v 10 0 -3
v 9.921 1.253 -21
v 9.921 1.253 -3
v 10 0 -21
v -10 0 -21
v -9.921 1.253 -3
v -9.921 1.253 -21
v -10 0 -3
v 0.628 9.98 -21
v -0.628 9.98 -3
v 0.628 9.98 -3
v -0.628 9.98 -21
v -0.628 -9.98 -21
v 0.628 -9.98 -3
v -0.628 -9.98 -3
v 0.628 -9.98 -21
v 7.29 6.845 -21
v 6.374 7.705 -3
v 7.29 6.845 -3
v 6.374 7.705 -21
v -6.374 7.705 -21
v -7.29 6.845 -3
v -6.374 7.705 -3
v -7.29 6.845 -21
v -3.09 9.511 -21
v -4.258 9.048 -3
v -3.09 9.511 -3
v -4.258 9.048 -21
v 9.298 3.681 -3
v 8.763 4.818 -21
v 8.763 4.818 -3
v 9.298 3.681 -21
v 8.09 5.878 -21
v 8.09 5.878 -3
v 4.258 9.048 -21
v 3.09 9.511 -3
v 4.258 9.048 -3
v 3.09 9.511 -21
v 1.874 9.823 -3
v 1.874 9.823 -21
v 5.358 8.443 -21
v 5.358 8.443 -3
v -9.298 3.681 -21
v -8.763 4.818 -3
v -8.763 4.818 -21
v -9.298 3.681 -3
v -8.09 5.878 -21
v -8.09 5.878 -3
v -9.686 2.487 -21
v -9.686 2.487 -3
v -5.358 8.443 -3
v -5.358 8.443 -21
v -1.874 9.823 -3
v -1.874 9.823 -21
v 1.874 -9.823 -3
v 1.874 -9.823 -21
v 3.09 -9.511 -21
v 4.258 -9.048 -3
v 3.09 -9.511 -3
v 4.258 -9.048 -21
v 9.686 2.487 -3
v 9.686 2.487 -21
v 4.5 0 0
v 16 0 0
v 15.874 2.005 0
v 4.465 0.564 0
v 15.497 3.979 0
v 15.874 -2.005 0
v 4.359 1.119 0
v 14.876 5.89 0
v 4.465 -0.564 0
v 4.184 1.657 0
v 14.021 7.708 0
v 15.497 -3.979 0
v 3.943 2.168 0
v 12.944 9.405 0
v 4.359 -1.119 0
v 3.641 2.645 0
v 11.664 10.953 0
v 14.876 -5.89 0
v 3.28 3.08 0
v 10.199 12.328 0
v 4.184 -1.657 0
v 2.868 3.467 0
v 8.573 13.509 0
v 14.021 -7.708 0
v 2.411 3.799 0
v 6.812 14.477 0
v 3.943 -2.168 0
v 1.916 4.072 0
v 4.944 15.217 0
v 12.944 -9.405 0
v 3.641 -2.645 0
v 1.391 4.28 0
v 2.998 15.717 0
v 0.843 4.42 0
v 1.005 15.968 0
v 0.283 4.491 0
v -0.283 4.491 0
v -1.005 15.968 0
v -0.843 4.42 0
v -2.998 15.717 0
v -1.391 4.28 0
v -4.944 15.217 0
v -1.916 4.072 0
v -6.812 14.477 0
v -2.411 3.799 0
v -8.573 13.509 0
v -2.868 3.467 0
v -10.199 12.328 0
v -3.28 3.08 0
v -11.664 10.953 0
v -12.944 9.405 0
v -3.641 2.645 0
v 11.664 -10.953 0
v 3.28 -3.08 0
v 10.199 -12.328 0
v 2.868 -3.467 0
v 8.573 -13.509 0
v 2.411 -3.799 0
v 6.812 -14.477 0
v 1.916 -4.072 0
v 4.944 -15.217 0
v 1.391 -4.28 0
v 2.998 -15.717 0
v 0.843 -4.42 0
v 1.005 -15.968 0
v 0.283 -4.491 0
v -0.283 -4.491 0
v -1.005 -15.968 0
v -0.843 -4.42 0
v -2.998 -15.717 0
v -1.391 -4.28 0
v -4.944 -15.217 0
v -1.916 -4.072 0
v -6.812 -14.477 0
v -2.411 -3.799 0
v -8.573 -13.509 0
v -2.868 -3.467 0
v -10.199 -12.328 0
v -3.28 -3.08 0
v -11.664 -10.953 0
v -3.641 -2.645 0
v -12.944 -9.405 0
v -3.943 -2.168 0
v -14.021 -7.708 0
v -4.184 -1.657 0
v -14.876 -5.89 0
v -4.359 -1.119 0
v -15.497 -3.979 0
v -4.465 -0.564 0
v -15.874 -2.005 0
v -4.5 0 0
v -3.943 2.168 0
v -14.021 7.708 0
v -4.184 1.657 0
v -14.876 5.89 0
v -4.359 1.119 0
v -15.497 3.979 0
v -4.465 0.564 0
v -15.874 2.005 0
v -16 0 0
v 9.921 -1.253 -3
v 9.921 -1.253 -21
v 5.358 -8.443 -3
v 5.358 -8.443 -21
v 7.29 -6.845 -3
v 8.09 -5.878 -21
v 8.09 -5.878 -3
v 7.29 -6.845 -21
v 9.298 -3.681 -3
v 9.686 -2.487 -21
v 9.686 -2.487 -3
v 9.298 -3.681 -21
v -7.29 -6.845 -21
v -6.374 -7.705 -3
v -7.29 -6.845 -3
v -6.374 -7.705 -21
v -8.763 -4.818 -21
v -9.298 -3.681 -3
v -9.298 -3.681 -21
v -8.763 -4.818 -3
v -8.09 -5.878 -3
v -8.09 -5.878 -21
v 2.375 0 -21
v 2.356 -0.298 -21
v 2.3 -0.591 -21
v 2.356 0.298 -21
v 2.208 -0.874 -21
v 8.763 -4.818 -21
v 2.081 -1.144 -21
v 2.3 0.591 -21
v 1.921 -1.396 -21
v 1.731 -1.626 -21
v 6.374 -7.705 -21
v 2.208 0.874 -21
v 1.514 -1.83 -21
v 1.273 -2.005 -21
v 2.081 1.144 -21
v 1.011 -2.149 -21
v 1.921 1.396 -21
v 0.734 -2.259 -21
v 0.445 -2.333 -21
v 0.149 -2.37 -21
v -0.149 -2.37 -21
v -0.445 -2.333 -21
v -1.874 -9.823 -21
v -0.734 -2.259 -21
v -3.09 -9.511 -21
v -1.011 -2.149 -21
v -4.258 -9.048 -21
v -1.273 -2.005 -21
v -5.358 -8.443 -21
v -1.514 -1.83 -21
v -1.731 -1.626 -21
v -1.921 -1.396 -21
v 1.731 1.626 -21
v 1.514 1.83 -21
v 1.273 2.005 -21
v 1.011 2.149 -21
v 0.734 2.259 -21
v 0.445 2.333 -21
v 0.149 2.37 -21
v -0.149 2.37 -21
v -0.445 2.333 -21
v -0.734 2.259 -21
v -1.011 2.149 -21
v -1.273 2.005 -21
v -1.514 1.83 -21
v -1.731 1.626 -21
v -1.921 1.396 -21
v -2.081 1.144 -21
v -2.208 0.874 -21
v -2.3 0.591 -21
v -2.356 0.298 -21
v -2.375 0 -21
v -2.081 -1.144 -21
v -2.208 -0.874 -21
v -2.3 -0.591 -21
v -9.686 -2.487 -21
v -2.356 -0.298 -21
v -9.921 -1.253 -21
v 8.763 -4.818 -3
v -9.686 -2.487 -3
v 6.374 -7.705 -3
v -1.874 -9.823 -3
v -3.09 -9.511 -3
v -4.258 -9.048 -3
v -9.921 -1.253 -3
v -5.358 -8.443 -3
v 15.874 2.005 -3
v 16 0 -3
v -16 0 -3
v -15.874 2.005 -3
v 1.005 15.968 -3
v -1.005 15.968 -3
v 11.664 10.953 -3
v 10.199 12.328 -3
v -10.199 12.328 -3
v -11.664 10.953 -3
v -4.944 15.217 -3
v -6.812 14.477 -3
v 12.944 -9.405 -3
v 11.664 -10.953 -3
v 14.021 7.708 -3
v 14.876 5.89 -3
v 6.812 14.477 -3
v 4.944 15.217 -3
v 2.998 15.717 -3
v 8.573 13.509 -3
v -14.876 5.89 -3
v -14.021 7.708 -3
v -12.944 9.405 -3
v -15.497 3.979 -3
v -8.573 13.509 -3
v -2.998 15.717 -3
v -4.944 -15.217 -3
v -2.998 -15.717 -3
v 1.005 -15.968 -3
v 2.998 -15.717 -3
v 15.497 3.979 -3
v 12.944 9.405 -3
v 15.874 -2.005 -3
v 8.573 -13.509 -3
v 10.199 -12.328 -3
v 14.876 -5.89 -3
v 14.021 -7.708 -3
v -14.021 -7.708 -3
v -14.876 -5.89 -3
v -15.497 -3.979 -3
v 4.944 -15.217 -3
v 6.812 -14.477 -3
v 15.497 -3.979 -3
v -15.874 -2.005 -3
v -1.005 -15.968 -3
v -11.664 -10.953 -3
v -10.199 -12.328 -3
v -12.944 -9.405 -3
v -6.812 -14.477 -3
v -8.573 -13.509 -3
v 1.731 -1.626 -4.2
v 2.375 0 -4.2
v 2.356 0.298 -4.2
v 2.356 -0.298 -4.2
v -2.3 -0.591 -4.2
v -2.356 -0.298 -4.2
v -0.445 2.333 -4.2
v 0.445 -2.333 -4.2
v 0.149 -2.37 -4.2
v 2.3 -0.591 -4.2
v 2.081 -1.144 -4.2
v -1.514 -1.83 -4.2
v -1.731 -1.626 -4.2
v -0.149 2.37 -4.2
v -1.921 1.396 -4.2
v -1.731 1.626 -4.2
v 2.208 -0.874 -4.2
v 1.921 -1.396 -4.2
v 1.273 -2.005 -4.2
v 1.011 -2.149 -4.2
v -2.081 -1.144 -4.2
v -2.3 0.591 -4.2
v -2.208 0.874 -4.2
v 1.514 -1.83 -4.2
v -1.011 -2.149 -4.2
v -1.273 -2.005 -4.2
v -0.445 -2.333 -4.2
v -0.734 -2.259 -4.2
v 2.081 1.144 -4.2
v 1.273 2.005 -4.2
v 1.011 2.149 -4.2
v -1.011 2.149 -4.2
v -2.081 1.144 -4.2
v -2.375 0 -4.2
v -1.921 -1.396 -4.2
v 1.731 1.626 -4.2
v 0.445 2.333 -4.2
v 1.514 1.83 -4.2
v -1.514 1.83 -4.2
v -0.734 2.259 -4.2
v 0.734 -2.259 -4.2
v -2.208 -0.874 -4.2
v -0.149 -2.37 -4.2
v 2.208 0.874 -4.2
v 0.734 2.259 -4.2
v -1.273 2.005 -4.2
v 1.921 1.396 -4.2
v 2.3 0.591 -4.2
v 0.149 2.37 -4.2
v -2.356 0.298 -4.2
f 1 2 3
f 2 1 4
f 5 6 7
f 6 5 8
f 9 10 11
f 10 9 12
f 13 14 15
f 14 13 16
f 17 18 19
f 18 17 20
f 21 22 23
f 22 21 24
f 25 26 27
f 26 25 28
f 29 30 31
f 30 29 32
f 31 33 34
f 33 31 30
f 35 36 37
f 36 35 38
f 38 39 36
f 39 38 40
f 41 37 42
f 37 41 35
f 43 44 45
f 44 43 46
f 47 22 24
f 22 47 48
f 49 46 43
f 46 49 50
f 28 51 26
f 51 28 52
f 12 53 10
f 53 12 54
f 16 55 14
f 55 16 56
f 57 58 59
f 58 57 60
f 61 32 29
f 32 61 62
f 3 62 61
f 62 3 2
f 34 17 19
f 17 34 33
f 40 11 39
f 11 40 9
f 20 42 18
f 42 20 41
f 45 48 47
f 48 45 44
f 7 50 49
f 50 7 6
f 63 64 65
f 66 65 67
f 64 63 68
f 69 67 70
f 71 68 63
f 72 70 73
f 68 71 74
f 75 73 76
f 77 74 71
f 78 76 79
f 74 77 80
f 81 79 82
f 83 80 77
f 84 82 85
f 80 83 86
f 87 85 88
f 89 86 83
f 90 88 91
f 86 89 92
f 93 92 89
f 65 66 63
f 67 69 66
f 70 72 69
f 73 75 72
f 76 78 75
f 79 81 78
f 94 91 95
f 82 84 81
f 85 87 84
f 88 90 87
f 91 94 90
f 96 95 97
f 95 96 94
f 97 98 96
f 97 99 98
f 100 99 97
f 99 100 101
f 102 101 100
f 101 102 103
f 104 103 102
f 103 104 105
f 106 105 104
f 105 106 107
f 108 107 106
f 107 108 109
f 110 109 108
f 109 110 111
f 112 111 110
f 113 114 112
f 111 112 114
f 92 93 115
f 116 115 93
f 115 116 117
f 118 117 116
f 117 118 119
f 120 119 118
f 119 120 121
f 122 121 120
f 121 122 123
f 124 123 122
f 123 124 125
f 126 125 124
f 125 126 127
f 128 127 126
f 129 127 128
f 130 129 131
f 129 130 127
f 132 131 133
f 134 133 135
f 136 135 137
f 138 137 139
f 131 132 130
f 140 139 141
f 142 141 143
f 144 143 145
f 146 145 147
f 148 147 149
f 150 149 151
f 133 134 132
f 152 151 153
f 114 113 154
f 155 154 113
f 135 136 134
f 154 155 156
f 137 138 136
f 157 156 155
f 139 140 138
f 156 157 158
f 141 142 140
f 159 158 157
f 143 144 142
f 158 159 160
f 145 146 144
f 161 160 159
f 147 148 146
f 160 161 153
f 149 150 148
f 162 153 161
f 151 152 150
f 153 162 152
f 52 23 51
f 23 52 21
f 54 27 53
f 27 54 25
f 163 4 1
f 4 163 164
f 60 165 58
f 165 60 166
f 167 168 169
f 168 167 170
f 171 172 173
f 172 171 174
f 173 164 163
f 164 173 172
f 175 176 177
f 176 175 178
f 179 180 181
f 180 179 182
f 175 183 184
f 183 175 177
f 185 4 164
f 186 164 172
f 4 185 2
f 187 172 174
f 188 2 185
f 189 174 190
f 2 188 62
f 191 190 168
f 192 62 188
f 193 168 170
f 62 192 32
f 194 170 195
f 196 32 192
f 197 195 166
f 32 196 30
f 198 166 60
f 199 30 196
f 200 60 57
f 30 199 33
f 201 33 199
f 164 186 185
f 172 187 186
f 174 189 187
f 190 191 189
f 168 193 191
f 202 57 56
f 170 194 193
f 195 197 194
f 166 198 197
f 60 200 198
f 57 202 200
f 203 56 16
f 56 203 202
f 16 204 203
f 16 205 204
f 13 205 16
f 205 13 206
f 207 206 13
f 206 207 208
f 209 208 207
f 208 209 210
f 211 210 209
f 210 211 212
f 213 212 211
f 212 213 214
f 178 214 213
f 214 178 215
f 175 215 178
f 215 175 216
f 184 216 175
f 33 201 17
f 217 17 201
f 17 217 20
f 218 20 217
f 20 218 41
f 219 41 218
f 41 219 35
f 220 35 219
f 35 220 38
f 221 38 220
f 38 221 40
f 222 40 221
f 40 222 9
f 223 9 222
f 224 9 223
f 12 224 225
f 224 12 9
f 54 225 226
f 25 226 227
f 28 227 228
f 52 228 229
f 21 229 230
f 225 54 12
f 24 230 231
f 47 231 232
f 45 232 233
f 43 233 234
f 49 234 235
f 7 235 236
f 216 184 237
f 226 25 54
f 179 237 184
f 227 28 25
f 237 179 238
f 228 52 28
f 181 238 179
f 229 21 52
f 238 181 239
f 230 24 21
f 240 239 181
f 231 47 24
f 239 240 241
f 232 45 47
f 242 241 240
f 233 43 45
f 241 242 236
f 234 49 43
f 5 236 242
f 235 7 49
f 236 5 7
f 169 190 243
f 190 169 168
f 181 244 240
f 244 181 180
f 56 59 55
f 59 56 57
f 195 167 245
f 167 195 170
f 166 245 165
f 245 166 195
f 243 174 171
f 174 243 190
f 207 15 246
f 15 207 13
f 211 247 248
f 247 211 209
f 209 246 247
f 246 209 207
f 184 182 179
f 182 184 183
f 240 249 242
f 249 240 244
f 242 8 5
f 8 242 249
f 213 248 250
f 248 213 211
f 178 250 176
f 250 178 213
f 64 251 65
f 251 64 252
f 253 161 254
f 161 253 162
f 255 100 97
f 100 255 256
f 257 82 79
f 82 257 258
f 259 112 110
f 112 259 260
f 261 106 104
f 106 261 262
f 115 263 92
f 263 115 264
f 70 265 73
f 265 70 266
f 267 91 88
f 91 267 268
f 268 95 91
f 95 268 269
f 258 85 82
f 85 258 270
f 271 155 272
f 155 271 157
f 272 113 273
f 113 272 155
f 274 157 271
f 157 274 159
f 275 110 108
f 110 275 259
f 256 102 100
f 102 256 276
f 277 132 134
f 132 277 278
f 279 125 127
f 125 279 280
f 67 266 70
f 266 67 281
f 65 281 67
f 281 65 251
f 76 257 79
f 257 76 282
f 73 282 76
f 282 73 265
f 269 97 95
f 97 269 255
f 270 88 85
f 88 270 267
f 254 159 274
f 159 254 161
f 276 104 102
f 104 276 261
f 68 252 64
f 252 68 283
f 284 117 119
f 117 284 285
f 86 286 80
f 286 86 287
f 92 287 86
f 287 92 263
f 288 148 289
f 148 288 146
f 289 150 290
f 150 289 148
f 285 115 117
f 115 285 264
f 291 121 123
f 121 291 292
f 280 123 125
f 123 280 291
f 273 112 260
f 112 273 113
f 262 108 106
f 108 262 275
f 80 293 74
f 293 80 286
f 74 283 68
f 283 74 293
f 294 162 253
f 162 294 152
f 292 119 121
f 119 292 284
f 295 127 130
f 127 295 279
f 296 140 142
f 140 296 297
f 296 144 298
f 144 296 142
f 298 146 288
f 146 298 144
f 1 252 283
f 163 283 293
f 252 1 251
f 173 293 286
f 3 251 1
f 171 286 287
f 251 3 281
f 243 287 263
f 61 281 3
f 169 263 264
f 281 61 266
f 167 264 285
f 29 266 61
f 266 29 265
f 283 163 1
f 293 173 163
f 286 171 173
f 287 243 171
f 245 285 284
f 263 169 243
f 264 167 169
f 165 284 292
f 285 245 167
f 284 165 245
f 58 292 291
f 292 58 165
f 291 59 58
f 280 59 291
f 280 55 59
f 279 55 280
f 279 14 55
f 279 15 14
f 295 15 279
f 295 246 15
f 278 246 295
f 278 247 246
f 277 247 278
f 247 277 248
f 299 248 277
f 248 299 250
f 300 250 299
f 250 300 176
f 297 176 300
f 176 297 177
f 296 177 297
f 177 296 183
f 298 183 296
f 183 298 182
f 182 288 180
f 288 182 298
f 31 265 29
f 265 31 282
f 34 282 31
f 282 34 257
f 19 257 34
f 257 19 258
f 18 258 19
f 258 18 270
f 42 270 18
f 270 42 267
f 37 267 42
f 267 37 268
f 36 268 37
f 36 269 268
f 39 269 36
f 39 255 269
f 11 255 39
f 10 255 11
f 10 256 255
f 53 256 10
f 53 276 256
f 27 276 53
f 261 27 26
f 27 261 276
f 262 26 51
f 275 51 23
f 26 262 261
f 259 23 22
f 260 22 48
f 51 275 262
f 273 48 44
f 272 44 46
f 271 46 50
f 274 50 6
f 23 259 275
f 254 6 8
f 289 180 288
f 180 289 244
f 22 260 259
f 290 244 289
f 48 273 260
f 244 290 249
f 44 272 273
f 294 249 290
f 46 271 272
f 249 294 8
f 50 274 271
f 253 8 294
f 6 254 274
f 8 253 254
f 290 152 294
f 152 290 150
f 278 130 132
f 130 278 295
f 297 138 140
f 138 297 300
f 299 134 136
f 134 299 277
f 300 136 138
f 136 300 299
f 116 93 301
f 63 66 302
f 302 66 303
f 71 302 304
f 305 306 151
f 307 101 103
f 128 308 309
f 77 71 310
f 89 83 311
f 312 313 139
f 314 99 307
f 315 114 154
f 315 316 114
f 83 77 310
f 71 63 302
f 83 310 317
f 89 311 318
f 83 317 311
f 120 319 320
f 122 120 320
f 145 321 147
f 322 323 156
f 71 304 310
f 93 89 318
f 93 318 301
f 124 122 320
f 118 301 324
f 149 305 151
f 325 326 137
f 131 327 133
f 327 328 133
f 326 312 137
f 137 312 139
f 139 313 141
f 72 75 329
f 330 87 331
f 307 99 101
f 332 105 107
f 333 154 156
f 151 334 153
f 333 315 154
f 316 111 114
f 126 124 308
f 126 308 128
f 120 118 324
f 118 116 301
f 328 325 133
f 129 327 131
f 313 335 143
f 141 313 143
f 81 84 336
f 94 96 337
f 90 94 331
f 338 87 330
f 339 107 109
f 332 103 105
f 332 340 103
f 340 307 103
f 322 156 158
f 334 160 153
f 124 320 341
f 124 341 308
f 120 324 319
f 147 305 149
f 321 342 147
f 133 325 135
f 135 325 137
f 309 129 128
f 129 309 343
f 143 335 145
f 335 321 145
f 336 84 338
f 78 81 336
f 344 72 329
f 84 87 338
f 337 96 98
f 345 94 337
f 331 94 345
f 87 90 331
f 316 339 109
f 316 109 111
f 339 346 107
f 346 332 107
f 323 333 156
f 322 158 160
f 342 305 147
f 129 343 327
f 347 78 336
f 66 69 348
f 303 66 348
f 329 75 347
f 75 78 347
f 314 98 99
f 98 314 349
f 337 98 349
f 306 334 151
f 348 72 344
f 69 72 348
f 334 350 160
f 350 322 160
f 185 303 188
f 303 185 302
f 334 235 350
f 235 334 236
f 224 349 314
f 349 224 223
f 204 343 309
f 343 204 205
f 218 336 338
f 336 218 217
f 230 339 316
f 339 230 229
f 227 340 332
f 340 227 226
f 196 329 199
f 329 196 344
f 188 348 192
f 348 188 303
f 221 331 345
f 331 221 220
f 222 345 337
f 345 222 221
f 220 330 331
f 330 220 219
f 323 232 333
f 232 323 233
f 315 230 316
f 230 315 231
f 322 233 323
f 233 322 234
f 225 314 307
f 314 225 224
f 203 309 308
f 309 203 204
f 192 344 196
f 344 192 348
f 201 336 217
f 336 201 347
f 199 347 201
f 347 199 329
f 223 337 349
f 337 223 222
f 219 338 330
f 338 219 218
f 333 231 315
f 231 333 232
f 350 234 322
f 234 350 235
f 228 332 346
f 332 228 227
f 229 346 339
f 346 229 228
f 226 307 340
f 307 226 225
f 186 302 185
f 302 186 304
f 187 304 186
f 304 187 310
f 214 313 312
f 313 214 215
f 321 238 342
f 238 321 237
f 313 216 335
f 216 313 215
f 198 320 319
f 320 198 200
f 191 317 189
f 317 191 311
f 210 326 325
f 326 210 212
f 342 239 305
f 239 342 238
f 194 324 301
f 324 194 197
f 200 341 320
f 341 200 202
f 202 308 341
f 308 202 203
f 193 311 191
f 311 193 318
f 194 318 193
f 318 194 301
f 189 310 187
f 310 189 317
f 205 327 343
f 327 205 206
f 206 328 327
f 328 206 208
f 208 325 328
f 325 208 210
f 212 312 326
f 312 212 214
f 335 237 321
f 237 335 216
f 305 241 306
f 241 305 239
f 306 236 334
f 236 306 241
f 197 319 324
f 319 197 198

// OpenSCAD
$fn = 50;


difference() {
	union() {
		translate(v = [0, 0, -21.0000000000]) {
			cylinder(h = 21, r = 10.0000000000);
		}
		translate(v = [0, 0, -3.0000000000]) {
			cylinder(h = 3, r = 16.0000000000);
		}
	}
	union() {
		translate(v = [0, 0, 0]) {
			rotate(a = [0, 0, 0]) {
				difference() {
					union() {
						#translate(v = [0, 0, -21.0000000000]) {
							cylinder(h = 21, r = 2.2500000000);
						}
						#translate(v = [0, 0, -4.2000000000]) {
							cylinder(h = 4.2000000000, r1 = 2.3750000000, r2 = 4.5000000000);
						}
						#translate(v = [0, 0, -21.0000000000]) {
							cylinder(h = 21, r = 2.3750000000);
						}
						#translate(v = [0, 0, -21.0000000000]) {
							cylinder(h = 21, r = 2.2500000000);
						}
					}
					union();
				}
			}
		}
	}
}
